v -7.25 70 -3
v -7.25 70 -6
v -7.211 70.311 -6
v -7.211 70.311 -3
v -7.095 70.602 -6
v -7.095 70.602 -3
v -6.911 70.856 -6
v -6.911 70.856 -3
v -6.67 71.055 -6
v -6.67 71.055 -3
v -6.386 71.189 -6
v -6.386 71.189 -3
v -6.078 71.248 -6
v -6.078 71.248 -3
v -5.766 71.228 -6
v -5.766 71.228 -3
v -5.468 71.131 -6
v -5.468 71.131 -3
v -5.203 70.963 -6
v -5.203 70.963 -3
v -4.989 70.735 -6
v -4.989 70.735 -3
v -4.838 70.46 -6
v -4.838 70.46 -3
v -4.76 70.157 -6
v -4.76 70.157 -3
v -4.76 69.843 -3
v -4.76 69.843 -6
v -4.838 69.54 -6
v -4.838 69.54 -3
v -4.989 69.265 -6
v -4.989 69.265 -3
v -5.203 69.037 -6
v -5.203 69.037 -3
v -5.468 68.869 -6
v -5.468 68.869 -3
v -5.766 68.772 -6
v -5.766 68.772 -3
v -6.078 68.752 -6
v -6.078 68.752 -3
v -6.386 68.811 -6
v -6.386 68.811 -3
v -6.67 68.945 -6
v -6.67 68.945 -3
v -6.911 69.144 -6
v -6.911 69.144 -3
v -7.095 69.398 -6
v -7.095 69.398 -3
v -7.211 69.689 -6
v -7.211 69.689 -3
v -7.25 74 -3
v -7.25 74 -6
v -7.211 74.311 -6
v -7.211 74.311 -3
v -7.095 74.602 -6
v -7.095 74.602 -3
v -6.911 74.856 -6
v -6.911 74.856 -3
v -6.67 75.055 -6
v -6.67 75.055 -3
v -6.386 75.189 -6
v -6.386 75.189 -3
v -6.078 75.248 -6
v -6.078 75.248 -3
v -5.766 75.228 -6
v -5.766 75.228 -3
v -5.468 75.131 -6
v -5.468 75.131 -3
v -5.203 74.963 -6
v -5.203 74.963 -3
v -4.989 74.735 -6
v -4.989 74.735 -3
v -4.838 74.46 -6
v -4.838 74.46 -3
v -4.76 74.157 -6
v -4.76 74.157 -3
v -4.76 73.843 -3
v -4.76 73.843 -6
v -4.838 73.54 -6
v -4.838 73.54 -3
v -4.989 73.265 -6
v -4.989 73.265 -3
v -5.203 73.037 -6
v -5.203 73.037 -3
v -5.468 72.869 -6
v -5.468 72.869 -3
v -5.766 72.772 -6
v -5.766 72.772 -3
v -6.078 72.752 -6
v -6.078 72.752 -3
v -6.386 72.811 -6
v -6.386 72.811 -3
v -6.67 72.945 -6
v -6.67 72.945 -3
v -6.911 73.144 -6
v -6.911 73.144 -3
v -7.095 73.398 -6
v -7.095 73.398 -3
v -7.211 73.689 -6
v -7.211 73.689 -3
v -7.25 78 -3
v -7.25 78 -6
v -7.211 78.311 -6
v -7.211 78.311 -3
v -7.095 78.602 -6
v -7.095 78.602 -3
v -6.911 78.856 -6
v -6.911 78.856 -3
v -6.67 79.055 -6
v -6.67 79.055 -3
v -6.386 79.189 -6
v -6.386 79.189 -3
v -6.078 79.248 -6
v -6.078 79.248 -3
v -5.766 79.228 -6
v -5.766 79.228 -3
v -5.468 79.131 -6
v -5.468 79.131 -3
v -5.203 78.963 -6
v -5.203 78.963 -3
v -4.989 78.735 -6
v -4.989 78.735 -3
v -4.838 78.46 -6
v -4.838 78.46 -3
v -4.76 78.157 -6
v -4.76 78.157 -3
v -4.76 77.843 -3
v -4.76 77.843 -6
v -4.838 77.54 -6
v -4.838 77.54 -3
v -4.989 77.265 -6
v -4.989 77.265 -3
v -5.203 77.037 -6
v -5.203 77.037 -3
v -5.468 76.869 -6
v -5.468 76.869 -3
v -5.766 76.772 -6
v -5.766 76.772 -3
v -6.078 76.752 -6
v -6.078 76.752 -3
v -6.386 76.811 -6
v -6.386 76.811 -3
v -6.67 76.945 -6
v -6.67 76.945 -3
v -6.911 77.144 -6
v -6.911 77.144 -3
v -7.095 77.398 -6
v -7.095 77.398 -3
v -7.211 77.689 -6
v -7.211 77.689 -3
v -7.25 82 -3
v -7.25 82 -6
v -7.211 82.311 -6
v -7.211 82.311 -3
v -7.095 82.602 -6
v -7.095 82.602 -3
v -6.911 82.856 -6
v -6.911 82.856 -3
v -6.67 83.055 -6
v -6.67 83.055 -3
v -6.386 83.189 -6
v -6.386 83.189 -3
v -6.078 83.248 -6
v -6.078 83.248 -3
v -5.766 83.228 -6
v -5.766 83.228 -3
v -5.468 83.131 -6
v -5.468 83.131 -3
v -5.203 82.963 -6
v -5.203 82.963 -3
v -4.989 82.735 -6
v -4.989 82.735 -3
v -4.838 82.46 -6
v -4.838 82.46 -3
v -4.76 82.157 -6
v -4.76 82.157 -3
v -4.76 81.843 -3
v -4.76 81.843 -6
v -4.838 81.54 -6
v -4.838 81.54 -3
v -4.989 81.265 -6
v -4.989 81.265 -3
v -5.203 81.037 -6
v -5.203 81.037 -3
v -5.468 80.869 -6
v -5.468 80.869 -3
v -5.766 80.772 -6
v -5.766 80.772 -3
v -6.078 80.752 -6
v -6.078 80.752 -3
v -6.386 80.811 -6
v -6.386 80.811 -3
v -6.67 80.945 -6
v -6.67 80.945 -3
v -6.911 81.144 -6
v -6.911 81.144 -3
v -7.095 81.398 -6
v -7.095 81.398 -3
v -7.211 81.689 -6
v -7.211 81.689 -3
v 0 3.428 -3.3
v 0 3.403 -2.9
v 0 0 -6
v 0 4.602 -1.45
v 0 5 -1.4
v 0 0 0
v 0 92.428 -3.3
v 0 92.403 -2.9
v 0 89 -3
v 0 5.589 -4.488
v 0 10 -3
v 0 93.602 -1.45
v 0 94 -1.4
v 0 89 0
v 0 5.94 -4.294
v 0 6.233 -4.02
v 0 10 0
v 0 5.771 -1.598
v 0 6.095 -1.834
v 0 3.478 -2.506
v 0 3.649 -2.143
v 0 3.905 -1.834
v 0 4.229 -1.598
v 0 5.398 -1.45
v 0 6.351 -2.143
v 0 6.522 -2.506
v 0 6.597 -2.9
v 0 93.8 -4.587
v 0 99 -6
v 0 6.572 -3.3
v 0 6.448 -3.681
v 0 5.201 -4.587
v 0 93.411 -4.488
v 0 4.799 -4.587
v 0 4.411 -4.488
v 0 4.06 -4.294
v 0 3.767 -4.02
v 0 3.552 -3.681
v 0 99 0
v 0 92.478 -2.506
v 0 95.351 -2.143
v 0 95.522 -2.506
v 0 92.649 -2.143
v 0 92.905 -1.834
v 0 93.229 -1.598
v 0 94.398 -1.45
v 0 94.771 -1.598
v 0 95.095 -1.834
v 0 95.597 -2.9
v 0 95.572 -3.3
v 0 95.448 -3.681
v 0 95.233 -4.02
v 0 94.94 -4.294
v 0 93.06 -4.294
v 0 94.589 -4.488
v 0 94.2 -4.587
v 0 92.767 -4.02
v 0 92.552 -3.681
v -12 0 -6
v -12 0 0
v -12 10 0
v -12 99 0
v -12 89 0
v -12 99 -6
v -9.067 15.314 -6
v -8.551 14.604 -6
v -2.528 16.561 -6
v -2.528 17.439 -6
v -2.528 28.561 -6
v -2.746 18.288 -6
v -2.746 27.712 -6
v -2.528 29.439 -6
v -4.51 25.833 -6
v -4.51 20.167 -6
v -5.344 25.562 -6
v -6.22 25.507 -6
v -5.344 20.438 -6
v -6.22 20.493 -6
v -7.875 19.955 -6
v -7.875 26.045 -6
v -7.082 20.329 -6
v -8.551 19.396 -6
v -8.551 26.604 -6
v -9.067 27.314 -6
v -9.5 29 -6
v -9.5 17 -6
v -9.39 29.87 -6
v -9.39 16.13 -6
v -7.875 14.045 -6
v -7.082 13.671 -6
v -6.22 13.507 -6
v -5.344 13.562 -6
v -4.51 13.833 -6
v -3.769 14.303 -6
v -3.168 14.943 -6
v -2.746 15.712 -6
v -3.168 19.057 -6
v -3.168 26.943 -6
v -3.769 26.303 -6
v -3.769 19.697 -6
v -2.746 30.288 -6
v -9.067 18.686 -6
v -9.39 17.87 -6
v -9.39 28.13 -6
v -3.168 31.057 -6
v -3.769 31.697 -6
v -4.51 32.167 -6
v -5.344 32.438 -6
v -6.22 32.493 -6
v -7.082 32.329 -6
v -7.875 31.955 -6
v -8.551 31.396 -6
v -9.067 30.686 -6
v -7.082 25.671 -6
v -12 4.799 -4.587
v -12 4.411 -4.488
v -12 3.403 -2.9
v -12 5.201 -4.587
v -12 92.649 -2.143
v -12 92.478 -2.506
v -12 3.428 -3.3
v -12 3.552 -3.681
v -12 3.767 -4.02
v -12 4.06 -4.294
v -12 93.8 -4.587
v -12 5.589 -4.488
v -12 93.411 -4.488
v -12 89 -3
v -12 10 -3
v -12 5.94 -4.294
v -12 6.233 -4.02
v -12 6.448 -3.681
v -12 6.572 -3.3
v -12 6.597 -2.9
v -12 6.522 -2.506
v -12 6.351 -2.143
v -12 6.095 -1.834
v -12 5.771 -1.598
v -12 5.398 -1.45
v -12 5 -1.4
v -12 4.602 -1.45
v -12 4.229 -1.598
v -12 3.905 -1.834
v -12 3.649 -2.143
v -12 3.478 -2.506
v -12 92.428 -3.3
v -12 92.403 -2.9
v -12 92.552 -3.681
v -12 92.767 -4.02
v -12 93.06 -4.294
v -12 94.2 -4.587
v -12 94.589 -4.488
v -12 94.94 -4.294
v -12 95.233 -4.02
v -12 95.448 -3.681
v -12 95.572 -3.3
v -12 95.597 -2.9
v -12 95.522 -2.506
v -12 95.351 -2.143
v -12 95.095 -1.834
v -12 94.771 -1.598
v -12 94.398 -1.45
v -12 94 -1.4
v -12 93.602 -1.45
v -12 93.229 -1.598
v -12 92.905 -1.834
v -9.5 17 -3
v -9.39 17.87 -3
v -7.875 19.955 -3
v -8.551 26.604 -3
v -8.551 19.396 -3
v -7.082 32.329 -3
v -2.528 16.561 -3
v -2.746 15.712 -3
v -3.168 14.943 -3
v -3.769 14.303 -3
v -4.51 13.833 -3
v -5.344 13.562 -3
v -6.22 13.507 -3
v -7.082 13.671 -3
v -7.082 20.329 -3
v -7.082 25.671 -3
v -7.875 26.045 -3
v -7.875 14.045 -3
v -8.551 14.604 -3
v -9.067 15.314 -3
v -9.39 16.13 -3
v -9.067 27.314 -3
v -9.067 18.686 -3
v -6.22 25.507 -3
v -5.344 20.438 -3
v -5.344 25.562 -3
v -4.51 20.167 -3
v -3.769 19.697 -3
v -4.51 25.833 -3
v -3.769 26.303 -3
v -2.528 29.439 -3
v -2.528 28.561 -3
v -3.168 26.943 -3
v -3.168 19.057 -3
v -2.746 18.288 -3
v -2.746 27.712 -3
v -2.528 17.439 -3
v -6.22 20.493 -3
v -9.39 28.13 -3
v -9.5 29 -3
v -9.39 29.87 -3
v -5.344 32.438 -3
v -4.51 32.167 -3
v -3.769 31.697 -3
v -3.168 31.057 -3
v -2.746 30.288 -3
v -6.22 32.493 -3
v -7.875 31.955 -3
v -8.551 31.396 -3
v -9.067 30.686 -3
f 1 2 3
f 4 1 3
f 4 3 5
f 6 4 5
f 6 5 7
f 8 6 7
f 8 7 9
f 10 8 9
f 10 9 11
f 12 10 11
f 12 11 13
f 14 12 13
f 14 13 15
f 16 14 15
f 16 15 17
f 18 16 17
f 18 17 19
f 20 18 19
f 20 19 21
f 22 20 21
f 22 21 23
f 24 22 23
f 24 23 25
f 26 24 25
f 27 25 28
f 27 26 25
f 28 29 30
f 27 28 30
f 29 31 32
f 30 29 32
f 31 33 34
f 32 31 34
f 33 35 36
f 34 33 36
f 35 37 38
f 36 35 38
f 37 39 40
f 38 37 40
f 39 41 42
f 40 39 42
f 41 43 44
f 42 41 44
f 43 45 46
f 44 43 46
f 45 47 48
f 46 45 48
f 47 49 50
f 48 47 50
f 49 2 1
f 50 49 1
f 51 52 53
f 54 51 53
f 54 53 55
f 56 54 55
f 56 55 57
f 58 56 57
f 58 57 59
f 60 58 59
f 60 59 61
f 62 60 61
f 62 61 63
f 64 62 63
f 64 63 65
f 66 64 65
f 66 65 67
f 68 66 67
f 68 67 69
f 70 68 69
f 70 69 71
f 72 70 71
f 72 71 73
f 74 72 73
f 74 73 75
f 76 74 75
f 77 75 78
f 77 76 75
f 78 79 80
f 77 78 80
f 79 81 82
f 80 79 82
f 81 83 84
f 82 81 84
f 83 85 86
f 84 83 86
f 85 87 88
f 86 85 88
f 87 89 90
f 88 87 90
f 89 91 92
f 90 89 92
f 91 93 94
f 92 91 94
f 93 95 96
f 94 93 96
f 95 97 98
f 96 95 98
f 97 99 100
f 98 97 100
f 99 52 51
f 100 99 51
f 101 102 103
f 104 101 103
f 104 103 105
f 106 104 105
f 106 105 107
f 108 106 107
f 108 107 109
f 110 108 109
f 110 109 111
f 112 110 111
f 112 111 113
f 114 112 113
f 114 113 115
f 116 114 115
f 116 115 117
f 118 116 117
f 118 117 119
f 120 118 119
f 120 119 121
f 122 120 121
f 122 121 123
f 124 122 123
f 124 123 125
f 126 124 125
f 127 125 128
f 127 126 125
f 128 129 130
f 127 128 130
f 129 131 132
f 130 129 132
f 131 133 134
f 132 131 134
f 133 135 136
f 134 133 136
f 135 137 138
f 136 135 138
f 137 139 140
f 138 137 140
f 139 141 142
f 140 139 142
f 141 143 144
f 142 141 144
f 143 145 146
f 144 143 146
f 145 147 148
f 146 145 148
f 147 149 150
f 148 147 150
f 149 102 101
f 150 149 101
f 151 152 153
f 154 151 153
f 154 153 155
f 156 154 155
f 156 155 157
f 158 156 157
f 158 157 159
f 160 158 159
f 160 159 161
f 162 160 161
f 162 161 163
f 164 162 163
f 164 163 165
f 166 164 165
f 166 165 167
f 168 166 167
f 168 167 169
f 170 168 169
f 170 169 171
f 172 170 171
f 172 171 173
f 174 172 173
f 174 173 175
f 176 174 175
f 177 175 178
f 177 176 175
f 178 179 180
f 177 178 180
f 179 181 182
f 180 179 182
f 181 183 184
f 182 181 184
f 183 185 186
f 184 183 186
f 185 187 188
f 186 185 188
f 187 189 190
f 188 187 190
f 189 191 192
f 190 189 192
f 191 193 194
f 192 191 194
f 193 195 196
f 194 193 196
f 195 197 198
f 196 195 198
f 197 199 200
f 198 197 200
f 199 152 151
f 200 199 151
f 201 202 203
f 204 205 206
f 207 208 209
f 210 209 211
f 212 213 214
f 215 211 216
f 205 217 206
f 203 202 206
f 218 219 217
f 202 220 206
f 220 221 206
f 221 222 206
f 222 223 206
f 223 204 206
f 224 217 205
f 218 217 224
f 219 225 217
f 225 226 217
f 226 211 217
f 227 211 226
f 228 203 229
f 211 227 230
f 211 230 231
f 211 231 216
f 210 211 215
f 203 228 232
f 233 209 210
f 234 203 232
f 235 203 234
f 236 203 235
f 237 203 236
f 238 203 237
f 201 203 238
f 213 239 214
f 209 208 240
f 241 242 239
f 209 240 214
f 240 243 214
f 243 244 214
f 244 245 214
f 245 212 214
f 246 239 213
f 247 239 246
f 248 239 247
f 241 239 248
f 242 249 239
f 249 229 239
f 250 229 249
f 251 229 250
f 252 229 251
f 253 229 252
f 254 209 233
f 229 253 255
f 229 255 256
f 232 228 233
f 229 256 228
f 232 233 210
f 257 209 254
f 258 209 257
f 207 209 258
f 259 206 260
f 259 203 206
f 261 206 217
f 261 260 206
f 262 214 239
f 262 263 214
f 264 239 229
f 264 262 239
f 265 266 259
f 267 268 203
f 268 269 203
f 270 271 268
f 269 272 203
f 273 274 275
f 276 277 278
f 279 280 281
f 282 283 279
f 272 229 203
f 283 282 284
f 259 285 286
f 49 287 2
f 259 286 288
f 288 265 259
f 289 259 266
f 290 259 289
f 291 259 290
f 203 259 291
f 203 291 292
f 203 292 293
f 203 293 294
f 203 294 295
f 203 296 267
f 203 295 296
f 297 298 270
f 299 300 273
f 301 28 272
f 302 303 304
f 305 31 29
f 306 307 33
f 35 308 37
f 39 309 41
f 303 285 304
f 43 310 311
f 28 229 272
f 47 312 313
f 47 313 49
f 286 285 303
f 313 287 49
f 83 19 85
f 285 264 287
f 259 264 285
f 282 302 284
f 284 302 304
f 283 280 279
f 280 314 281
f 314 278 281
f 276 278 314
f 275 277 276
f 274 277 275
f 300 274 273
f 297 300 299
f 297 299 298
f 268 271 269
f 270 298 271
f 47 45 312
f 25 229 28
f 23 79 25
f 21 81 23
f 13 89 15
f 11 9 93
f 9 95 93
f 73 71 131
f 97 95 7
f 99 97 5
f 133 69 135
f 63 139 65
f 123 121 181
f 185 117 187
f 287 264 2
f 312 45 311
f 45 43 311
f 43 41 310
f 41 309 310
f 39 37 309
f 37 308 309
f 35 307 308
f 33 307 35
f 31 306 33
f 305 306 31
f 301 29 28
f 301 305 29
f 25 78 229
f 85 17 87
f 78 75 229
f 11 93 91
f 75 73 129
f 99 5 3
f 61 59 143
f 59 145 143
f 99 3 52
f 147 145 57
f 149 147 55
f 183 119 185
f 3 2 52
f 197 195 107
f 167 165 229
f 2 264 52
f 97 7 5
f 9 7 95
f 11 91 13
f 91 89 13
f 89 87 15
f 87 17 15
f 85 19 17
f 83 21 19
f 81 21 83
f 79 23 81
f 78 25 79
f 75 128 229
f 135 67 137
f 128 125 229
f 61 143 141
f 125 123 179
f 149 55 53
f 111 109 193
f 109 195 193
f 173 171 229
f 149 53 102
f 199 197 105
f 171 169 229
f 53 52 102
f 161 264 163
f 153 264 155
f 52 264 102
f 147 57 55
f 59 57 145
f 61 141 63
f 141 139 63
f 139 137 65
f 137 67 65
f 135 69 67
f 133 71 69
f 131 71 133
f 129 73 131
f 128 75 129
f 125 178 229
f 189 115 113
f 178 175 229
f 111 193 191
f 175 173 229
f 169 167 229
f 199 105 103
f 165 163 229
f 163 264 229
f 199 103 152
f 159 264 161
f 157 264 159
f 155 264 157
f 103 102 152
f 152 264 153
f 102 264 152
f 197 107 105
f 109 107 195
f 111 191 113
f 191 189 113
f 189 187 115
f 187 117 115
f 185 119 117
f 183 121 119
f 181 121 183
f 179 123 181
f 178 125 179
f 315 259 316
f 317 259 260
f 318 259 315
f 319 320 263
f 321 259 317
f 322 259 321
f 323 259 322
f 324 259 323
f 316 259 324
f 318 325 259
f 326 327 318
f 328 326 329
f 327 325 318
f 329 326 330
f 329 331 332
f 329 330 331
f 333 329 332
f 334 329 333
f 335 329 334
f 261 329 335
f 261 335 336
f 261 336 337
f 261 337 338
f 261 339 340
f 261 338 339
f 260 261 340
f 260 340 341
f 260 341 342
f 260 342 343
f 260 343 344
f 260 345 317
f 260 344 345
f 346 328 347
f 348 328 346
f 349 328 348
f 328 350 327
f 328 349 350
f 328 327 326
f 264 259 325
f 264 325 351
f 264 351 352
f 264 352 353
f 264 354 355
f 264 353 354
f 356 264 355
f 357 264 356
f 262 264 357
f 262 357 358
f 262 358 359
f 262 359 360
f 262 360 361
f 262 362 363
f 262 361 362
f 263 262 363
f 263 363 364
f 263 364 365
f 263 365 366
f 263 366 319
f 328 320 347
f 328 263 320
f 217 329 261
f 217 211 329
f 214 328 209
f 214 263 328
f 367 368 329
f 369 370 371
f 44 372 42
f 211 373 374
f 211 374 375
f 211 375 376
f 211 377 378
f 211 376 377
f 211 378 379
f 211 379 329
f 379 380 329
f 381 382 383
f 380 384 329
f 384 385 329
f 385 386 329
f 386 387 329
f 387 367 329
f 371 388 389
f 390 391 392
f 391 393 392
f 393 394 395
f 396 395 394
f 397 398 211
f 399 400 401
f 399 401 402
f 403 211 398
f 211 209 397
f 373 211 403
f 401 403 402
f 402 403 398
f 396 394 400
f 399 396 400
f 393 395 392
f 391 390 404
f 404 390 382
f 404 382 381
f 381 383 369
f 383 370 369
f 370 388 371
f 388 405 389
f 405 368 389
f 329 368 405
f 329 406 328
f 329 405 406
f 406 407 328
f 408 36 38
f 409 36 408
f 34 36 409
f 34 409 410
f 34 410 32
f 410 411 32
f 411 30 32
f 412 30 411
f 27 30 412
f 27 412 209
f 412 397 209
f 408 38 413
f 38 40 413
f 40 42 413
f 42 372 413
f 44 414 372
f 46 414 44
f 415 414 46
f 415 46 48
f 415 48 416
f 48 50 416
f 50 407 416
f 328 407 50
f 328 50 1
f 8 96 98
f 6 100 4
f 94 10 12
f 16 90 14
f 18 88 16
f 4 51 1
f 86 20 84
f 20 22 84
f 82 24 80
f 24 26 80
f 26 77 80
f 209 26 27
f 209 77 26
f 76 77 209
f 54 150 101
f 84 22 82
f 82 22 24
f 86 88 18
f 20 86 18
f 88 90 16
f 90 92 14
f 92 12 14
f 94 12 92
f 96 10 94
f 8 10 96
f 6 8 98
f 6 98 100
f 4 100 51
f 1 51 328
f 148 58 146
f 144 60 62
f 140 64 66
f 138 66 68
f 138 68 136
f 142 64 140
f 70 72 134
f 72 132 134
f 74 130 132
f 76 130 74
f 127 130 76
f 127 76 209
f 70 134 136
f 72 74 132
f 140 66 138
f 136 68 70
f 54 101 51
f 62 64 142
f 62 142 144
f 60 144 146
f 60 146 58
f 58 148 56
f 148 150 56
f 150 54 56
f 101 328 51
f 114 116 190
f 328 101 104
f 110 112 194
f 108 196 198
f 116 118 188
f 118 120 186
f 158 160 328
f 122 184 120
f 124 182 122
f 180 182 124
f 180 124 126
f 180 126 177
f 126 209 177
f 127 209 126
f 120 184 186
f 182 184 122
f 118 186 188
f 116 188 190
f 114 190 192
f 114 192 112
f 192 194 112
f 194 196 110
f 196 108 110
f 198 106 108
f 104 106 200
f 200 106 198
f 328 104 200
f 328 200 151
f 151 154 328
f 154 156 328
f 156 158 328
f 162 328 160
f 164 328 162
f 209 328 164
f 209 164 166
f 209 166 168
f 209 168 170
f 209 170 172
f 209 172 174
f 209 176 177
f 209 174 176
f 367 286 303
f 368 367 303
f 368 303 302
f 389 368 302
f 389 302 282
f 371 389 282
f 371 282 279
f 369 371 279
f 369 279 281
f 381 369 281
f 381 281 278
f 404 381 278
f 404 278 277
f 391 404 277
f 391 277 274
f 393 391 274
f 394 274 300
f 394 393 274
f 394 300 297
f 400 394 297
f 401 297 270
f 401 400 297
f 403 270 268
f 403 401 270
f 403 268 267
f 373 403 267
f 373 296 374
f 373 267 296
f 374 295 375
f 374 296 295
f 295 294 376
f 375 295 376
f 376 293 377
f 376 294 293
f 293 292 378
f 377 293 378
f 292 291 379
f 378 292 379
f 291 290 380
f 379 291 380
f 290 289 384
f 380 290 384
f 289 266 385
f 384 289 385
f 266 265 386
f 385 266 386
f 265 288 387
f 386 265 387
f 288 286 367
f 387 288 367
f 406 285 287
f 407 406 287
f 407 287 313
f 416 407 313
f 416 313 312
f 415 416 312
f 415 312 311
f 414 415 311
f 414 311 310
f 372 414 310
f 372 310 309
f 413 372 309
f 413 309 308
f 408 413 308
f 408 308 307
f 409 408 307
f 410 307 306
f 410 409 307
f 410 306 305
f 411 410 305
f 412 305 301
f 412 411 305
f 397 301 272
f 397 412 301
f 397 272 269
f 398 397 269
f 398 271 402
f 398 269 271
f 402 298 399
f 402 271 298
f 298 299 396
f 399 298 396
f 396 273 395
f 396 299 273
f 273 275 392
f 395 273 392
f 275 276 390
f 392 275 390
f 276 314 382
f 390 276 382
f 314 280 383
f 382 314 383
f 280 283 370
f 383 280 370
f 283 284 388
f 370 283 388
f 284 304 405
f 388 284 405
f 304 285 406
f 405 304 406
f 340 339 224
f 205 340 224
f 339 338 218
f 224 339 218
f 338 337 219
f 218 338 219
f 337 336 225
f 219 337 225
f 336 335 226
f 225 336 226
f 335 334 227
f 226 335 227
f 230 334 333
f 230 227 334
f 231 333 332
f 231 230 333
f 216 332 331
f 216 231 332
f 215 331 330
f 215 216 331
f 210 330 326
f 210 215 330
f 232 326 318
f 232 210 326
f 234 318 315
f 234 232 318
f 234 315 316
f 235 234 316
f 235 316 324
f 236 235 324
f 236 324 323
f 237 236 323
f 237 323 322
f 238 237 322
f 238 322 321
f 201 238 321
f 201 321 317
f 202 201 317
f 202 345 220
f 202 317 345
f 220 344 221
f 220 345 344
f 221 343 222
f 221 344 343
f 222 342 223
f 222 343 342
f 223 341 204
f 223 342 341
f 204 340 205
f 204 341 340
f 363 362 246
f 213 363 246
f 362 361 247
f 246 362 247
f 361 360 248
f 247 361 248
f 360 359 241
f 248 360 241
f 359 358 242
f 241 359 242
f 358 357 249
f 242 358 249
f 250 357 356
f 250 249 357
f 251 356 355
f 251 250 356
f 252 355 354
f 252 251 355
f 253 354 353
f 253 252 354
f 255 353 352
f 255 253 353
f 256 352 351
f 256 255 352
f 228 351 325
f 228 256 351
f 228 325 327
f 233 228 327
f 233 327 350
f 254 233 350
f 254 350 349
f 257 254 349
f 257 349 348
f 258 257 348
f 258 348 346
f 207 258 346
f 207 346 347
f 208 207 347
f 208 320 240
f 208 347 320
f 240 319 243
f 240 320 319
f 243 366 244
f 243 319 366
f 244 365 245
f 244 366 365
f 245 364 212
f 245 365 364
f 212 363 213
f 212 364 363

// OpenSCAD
module panel(w,l,height){
	difference() {
	cube([w,l,height]);
	translate([-1,10,-3])
		cube([w+2,l-20,height]);				
	//Light holes
	for(i = [0:1:3]) {	
		translate([w/2,70 + i*4,height/2])
			cylinder(d=2.5,h=height+2,center=true,$fn=25);		
	}
    //Switch
	translate([w/2,17,height/2])
		cylinder(d=7,h=height+2,center=true,$fn=25);
	translate([w/2,29,height/2])
		cylinder(d=7,h=height+2,center=true,$fn=25);
	
	
	//Mounting holes
	translate([w/2,5,height/2])
		rotate([0,90,0])
			cylinder(d=3.2,h=w+2,center=true,$fn=25);
	translate([w/2,l-5,height/2])
		rotate([0,90,0])
			cylinder(d=3.2,h=w+2,center=true,$fn=25);		
	}
}

rotate([0,180,0])
	panel(12,99,6);
